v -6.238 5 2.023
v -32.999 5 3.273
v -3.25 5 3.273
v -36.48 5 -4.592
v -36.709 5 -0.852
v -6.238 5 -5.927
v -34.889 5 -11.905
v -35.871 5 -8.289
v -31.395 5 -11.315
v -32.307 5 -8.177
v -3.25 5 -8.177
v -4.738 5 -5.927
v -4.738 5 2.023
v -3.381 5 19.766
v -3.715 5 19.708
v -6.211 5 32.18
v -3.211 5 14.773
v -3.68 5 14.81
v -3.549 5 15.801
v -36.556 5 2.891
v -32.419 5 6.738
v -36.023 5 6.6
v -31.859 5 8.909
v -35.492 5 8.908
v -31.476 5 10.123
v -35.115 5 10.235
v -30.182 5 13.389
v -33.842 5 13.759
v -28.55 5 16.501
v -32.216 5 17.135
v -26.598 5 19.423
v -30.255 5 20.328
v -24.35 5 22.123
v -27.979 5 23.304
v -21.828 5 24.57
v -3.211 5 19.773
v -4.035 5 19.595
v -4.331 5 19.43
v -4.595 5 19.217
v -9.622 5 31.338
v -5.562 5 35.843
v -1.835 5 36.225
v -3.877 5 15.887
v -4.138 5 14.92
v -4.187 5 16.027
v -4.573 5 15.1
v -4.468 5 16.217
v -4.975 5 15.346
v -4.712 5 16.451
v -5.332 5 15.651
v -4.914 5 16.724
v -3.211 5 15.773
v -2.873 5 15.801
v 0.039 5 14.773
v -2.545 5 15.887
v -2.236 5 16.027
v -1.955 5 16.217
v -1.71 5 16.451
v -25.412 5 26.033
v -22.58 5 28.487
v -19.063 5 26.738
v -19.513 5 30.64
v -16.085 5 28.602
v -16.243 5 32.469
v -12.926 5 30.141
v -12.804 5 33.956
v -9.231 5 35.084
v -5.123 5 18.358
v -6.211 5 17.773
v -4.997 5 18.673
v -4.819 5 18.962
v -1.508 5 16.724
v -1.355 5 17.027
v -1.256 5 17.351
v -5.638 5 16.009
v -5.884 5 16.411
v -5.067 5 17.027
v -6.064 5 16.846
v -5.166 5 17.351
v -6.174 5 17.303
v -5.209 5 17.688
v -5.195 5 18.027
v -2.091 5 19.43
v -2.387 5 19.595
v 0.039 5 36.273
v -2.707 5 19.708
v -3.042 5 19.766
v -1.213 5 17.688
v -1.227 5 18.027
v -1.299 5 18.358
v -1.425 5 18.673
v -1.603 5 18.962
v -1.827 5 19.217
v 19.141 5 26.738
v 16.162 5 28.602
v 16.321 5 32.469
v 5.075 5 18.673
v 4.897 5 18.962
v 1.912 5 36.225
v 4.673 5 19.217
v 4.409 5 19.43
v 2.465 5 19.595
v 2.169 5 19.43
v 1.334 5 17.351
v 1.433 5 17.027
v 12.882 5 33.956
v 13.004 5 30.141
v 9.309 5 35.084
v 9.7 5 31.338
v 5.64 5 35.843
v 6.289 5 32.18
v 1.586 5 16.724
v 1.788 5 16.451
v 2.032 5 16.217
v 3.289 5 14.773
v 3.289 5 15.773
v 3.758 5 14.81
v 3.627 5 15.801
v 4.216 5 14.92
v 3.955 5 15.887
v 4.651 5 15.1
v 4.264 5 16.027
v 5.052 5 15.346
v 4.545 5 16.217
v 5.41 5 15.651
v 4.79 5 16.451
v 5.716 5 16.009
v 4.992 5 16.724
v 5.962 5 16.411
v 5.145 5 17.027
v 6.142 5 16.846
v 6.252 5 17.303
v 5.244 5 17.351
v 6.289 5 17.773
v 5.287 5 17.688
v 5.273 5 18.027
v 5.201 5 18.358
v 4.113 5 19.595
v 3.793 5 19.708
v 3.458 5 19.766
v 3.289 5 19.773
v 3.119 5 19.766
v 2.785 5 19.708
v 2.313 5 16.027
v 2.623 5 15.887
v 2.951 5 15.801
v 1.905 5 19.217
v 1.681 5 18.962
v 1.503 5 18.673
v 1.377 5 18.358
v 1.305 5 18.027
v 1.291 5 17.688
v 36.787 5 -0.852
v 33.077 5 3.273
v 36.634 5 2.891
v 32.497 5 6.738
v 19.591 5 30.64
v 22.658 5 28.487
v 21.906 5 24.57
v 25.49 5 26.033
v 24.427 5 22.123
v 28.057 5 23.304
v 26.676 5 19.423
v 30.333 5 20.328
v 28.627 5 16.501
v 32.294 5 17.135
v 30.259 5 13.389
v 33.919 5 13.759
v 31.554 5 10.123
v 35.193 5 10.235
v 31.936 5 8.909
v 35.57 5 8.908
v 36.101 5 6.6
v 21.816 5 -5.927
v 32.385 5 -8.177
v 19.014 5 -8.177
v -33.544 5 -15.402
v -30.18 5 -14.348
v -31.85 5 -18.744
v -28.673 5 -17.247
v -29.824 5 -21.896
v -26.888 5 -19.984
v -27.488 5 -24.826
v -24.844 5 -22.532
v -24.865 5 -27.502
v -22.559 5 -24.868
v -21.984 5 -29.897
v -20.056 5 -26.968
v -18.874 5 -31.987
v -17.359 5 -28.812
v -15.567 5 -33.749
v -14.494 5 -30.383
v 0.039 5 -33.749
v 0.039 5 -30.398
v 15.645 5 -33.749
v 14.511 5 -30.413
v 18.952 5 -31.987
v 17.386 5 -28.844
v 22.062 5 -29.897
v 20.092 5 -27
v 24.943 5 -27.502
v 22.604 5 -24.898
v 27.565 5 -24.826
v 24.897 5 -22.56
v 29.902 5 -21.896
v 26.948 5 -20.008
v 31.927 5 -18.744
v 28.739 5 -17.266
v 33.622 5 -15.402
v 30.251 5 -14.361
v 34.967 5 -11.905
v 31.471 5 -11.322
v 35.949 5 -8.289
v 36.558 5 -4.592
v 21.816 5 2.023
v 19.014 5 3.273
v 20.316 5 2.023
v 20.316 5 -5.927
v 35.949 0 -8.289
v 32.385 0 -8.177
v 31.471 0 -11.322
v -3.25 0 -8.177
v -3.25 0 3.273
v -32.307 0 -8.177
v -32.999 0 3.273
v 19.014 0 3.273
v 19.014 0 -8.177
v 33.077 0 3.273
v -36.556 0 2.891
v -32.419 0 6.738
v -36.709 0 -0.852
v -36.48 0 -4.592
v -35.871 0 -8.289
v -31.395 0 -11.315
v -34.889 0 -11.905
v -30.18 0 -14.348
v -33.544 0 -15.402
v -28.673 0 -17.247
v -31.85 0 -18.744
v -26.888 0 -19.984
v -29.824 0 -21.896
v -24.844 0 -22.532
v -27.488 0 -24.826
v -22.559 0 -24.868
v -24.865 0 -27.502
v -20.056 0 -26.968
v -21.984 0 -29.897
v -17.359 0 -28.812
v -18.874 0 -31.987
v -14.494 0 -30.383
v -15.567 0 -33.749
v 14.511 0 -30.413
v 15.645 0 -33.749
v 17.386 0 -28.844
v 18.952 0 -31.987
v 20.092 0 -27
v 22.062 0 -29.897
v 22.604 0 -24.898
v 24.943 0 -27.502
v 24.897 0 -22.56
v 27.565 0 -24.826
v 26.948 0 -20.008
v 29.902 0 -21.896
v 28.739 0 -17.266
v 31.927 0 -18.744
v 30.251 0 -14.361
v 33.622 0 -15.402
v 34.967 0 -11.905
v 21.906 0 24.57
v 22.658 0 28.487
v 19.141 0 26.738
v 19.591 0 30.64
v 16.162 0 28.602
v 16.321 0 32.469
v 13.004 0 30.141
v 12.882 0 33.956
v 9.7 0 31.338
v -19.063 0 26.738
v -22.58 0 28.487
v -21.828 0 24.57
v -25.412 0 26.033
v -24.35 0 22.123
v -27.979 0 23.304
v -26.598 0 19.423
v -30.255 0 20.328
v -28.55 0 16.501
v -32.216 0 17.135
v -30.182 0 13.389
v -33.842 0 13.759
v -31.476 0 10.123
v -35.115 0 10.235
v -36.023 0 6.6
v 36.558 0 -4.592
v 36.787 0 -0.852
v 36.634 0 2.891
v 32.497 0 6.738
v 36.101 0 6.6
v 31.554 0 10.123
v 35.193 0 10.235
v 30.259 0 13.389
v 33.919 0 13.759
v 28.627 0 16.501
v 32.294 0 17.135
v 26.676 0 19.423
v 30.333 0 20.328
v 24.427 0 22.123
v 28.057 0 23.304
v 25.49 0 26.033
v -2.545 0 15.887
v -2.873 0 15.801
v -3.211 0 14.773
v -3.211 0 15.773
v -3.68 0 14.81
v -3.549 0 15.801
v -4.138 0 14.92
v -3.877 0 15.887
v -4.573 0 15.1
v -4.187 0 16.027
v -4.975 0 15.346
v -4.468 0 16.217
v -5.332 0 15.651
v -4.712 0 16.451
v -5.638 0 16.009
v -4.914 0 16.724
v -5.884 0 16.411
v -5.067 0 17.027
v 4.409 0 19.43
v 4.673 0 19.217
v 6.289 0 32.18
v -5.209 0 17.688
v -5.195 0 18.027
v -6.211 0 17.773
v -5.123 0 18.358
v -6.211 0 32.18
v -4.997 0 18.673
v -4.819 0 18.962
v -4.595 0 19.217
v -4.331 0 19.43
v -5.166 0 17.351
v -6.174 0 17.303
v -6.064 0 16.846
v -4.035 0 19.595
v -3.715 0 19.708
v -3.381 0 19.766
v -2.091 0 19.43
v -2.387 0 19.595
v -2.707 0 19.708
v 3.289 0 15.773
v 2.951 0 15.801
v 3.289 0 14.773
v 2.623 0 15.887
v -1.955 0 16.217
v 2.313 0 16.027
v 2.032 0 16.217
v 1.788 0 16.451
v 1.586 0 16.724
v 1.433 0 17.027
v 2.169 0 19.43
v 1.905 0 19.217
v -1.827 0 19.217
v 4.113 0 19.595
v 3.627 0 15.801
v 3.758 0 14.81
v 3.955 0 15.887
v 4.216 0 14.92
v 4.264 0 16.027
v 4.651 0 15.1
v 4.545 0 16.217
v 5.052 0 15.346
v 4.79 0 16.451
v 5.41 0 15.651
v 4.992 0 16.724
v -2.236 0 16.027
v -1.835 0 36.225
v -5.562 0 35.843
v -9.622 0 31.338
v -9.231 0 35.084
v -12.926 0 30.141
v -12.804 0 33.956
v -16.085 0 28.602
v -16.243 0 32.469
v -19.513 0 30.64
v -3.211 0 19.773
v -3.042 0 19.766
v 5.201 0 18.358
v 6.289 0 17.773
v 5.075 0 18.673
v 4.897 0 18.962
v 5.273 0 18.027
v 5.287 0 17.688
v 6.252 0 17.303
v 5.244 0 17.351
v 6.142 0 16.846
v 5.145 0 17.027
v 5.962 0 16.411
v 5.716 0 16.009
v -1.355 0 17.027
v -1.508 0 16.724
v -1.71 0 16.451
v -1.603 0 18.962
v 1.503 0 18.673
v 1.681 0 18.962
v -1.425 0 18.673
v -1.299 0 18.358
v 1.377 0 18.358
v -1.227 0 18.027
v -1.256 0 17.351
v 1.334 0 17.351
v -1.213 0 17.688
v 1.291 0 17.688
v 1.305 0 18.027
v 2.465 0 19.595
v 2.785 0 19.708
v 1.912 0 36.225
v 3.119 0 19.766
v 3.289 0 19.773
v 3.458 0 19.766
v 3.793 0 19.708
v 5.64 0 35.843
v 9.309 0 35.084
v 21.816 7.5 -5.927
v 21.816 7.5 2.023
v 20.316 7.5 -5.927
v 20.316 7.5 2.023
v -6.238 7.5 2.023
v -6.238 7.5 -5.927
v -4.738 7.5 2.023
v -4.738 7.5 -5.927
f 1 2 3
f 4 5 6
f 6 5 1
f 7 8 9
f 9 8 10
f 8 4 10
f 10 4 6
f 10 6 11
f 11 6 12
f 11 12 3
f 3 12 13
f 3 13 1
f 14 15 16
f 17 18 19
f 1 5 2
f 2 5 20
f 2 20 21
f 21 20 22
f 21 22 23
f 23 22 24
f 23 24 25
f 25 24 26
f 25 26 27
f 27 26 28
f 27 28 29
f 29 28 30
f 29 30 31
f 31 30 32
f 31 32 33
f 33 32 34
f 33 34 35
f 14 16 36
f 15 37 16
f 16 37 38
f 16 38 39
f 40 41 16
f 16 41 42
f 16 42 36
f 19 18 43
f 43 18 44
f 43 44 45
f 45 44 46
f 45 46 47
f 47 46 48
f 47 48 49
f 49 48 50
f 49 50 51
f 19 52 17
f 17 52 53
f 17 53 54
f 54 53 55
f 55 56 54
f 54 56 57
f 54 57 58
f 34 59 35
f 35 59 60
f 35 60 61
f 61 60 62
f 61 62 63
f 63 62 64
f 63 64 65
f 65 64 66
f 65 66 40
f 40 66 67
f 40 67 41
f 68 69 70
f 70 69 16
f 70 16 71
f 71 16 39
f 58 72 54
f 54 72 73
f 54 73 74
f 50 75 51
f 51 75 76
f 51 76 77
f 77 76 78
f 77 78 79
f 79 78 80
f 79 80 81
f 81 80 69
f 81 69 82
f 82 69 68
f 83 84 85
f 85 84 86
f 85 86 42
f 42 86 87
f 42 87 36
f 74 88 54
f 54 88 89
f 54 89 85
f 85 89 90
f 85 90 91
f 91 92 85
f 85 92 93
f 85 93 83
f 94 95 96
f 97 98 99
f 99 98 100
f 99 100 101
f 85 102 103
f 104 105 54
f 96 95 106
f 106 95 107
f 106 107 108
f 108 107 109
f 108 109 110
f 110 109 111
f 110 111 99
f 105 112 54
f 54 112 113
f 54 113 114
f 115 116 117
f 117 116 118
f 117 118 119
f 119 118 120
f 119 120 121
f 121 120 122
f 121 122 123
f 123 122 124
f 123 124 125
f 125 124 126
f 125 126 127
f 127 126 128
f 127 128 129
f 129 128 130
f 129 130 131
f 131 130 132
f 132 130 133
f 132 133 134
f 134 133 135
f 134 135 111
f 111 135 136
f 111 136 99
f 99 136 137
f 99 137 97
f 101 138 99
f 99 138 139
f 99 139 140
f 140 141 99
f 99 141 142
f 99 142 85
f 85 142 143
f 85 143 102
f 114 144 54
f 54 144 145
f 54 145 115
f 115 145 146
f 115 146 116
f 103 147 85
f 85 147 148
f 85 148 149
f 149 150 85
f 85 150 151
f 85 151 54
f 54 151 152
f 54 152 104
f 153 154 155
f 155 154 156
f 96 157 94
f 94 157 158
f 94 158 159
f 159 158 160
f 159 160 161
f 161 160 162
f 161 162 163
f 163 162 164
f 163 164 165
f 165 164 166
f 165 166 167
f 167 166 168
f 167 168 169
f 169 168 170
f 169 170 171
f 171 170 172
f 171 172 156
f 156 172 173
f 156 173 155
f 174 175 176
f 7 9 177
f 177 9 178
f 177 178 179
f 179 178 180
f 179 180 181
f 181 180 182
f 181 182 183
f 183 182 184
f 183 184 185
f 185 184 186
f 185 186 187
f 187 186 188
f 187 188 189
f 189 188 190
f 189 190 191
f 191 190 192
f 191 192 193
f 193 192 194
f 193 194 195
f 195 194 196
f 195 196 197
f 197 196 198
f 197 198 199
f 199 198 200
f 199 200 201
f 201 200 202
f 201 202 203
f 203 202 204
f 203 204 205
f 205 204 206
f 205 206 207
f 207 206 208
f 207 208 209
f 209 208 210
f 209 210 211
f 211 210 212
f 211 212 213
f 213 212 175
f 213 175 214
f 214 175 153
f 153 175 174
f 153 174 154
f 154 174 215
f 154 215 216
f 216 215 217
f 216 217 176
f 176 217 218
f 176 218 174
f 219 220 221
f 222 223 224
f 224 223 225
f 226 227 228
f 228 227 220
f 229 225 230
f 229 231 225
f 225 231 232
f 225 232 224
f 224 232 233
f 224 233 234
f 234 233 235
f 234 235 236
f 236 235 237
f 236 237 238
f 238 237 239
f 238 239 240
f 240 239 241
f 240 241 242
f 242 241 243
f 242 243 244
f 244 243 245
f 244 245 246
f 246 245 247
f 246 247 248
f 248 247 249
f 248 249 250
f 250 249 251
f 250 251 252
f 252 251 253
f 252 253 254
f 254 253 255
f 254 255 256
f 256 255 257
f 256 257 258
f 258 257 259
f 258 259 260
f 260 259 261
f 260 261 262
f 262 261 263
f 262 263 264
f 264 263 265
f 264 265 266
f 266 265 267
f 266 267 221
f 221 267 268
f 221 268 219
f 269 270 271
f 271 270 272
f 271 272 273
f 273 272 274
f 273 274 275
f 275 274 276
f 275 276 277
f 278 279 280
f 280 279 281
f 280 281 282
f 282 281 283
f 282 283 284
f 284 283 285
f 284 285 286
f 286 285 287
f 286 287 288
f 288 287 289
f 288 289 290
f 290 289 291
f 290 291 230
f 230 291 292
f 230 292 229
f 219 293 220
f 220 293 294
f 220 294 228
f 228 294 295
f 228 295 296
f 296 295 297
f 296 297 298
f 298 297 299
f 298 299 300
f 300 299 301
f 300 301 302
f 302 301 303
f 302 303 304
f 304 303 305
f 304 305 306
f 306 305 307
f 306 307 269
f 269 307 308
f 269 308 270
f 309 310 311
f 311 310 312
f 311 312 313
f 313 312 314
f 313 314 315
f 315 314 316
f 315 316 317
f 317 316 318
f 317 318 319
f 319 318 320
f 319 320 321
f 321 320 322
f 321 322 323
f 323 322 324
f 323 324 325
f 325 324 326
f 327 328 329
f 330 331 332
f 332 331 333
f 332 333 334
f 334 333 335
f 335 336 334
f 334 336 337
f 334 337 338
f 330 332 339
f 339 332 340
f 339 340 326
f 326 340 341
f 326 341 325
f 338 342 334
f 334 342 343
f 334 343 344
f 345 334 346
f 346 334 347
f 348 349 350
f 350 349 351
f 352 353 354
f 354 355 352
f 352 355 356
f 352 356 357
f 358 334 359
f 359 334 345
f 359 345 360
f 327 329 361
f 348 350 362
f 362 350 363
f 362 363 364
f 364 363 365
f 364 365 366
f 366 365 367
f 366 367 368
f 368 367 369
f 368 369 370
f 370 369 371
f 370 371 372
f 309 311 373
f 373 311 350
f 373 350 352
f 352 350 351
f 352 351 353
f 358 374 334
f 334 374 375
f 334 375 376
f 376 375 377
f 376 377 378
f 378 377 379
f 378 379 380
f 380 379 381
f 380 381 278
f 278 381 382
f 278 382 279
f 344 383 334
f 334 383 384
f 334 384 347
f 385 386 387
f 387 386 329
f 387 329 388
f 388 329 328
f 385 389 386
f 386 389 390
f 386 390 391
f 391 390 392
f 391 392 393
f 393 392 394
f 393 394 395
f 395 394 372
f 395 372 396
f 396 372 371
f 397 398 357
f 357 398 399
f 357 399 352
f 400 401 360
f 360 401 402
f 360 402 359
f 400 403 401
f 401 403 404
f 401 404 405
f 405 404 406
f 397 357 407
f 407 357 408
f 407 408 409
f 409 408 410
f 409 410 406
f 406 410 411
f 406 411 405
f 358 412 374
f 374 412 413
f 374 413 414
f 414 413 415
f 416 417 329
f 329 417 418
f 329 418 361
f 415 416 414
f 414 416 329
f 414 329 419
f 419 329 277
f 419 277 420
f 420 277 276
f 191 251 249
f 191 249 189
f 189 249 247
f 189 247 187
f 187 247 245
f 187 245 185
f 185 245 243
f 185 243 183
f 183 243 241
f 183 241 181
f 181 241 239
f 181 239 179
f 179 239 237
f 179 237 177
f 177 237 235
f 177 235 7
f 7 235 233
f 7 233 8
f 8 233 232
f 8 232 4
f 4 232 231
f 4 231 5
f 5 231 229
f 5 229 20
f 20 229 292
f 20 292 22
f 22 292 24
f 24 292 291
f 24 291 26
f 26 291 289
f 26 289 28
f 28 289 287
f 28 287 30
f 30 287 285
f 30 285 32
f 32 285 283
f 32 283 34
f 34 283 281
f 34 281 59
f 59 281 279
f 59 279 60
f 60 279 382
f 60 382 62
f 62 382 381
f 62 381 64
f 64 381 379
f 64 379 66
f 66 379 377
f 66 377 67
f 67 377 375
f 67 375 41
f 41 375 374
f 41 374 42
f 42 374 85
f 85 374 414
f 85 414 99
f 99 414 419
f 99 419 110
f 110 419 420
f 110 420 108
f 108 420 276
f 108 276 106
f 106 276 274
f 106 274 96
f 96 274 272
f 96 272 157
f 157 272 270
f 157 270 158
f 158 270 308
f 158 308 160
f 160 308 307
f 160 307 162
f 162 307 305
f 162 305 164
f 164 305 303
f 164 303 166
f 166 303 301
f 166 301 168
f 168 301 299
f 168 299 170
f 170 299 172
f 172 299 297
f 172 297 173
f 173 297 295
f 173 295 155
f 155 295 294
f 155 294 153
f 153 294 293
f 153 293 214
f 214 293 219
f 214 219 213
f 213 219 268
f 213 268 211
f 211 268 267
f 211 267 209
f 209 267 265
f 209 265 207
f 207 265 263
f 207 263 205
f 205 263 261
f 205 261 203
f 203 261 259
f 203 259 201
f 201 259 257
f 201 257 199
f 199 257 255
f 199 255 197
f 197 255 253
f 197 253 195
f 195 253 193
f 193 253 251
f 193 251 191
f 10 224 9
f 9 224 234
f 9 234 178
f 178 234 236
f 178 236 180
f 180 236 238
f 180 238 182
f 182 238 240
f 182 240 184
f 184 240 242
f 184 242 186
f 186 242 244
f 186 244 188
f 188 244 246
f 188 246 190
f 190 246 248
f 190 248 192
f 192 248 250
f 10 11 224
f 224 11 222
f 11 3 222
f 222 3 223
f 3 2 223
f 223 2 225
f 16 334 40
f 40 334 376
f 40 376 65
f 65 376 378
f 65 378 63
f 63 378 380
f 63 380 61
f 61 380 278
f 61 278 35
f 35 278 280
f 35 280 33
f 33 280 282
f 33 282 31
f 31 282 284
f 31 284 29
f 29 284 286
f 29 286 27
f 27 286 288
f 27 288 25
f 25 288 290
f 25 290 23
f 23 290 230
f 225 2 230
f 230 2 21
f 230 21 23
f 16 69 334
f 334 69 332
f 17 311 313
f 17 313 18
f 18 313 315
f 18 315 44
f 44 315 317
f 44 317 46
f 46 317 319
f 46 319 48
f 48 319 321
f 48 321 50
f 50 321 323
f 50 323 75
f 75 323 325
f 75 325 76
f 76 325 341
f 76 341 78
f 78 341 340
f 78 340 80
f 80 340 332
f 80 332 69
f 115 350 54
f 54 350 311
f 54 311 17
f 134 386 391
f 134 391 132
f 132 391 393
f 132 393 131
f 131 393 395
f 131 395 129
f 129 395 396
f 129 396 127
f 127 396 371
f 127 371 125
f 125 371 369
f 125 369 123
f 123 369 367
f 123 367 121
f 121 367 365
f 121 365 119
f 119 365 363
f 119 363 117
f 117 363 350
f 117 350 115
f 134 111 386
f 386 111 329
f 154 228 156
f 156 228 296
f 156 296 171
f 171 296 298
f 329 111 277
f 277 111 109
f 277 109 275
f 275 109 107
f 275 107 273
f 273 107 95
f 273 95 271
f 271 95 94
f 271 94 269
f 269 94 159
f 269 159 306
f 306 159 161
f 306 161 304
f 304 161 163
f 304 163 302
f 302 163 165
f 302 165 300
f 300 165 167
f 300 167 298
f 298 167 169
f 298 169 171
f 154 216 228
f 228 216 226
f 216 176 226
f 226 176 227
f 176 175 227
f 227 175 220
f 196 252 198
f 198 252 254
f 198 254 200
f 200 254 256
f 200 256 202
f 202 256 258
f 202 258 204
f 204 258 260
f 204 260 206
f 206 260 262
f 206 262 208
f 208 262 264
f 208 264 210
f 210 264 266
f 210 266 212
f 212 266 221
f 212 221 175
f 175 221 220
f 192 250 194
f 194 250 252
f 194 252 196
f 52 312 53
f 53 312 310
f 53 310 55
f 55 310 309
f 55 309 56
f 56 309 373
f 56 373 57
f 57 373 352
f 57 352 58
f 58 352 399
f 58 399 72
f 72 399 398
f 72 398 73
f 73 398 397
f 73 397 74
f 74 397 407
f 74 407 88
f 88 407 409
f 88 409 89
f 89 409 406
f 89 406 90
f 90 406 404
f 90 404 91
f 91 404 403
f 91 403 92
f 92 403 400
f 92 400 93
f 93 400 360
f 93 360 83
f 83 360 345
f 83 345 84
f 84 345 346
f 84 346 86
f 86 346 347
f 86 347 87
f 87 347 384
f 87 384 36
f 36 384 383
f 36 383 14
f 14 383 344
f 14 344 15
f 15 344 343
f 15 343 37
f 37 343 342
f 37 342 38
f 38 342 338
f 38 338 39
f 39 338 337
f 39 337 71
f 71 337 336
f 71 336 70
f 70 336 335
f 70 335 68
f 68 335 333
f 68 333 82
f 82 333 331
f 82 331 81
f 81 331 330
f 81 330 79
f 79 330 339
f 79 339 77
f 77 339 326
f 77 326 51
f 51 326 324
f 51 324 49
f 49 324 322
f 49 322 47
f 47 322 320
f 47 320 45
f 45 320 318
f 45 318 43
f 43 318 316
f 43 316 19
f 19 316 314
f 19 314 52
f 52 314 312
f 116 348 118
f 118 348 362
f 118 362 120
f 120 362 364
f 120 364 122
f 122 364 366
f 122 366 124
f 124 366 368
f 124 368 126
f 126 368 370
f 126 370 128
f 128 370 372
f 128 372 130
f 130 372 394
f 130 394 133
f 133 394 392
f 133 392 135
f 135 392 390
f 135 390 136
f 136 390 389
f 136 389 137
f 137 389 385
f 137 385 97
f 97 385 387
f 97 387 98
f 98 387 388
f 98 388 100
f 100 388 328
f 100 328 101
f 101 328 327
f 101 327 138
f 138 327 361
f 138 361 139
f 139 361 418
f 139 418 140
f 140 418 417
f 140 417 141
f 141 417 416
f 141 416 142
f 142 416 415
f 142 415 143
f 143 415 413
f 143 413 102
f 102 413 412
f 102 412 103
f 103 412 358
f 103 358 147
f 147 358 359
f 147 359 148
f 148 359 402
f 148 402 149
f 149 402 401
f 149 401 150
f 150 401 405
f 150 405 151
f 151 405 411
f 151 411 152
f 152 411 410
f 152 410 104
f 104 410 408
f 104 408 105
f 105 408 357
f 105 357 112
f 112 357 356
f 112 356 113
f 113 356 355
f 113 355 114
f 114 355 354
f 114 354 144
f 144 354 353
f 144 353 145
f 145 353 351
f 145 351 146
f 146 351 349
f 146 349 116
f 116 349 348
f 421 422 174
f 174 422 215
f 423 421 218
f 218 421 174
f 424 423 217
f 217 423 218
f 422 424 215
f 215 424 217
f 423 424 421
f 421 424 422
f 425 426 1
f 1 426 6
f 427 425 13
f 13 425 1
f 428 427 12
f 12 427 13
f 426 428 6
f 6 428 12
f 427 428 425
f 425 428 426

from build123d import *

# Parameters (mm, degrees)
SKETCH1_R           = 2
BOSS_EXTRUDE1_DEPTH = 5
SKETCH4_W           = 1.5
SKETCH4_H           = 7.95
BOSS_EXTRUDE2_DEPTH = 2.5


with BuildPart() as part:
    # Sketch1 → Boss-Extrude1 (new body)
    with BuildSketch(Plane(origin=(0, 0, 0), x_dir=(1, 0, 0), z_dir=(0, 1, 0))):
        with BuildLine():
            Line((-15.567316533, 33.749050158), (15.645012234, 33.749050158))
            ThreePointArc((15.645012234, 33.749050158), (0.03884785, -36.272711642), (-15.567316533, 33.749050158))
        make_face()
        with Locations(Location((-3.21115215, -17.772711642, 0), (0, 0, 270))):
            Circle(SKETCH1_R, mode=Mode.SUBTRACT)
        with Locations(Location((3.28884785, -17.772711642, 0), (0, 0, 270))):
            Circle(SKETCH1_R, mode=Mode.SUBTRACT)
        with BuildLine():
            Line((-14.493890345, 30.38317441), (14.510950609, 30.412564234))
            ThreePointArc((14.510950609, 30.412564234), (25.953877048, 21.309325265), (32.384983632, 8.177288358))
            Line((32.384983632, 8.177288358), (19.014237034, 8.177288358))
            Line((19.014237034, 8.177288358), (19.014237034, -3.272711642))
            Line((19.014237034, -3.272711642), (33.076704924, -3.272711642))
            ThreePointArc((33.076704924, -3.272711642), (24.427207658, -22.122941859), (6.28884785, -32.180023227))
            Line((6.28884785, -32.180023227), (6.28884785, -17.772711642))
            ThreePointArc((6.28884785, -17.772711642), (5.410168194, -15.651391298), (3.28884785, -14.772711642))
            Line((3.28884785, -14.772711642), (-3.21115215, -14.772711642))
            ThreePointArc((-3.21115215, -14.772711642), (-5.332472493, -15.651391298), (-6.21115215, -17.772711642))
            Line((-6.21115215, -17.772711642), (-6.21115215, -32.180023227))
            ThreePointArc((-6.21115215, -32.180023227), (-24.349511958, -22.122941859), (-32.999009223, -3.272711642))
            Line((-32.999009223, -3.272711642), (-3.25, -3.272711642))
            Line((-3.25, -3.272711642), (-3.25, 8.177288358))
            Line((-3.25, 8.177288358), (-32.307287931, 8.177288358))
            ThreePointArc((-32.307287931, 8.177288358), (-25.897276574, 21.283055583), (-14.493890345, 30.38317441))
        make_face(mode=Mode.SUBTRACT)
    extrude(amount=BOSS_EXTRUDE1_DEPTH)

    # Sketch4 → Boss-Extrude2 (add)
    with BuildSketch(Plane(origin=(0, 5, 0), x_dir=(1, 0, 0), z_dir=(0, 1, 0))):
        with Locations((21.065838417, 1.952288358)):
            Rectangle(SKETCH4_W, SKETCH4_H)
        with Locations((-5.488142716, 1.952288358)):
            Rectangle(SKETCH4_W, SKETCH4_H)
    extrude(amount=BOSS_EXTRUDE2_DEPTH)


solid = part.part
